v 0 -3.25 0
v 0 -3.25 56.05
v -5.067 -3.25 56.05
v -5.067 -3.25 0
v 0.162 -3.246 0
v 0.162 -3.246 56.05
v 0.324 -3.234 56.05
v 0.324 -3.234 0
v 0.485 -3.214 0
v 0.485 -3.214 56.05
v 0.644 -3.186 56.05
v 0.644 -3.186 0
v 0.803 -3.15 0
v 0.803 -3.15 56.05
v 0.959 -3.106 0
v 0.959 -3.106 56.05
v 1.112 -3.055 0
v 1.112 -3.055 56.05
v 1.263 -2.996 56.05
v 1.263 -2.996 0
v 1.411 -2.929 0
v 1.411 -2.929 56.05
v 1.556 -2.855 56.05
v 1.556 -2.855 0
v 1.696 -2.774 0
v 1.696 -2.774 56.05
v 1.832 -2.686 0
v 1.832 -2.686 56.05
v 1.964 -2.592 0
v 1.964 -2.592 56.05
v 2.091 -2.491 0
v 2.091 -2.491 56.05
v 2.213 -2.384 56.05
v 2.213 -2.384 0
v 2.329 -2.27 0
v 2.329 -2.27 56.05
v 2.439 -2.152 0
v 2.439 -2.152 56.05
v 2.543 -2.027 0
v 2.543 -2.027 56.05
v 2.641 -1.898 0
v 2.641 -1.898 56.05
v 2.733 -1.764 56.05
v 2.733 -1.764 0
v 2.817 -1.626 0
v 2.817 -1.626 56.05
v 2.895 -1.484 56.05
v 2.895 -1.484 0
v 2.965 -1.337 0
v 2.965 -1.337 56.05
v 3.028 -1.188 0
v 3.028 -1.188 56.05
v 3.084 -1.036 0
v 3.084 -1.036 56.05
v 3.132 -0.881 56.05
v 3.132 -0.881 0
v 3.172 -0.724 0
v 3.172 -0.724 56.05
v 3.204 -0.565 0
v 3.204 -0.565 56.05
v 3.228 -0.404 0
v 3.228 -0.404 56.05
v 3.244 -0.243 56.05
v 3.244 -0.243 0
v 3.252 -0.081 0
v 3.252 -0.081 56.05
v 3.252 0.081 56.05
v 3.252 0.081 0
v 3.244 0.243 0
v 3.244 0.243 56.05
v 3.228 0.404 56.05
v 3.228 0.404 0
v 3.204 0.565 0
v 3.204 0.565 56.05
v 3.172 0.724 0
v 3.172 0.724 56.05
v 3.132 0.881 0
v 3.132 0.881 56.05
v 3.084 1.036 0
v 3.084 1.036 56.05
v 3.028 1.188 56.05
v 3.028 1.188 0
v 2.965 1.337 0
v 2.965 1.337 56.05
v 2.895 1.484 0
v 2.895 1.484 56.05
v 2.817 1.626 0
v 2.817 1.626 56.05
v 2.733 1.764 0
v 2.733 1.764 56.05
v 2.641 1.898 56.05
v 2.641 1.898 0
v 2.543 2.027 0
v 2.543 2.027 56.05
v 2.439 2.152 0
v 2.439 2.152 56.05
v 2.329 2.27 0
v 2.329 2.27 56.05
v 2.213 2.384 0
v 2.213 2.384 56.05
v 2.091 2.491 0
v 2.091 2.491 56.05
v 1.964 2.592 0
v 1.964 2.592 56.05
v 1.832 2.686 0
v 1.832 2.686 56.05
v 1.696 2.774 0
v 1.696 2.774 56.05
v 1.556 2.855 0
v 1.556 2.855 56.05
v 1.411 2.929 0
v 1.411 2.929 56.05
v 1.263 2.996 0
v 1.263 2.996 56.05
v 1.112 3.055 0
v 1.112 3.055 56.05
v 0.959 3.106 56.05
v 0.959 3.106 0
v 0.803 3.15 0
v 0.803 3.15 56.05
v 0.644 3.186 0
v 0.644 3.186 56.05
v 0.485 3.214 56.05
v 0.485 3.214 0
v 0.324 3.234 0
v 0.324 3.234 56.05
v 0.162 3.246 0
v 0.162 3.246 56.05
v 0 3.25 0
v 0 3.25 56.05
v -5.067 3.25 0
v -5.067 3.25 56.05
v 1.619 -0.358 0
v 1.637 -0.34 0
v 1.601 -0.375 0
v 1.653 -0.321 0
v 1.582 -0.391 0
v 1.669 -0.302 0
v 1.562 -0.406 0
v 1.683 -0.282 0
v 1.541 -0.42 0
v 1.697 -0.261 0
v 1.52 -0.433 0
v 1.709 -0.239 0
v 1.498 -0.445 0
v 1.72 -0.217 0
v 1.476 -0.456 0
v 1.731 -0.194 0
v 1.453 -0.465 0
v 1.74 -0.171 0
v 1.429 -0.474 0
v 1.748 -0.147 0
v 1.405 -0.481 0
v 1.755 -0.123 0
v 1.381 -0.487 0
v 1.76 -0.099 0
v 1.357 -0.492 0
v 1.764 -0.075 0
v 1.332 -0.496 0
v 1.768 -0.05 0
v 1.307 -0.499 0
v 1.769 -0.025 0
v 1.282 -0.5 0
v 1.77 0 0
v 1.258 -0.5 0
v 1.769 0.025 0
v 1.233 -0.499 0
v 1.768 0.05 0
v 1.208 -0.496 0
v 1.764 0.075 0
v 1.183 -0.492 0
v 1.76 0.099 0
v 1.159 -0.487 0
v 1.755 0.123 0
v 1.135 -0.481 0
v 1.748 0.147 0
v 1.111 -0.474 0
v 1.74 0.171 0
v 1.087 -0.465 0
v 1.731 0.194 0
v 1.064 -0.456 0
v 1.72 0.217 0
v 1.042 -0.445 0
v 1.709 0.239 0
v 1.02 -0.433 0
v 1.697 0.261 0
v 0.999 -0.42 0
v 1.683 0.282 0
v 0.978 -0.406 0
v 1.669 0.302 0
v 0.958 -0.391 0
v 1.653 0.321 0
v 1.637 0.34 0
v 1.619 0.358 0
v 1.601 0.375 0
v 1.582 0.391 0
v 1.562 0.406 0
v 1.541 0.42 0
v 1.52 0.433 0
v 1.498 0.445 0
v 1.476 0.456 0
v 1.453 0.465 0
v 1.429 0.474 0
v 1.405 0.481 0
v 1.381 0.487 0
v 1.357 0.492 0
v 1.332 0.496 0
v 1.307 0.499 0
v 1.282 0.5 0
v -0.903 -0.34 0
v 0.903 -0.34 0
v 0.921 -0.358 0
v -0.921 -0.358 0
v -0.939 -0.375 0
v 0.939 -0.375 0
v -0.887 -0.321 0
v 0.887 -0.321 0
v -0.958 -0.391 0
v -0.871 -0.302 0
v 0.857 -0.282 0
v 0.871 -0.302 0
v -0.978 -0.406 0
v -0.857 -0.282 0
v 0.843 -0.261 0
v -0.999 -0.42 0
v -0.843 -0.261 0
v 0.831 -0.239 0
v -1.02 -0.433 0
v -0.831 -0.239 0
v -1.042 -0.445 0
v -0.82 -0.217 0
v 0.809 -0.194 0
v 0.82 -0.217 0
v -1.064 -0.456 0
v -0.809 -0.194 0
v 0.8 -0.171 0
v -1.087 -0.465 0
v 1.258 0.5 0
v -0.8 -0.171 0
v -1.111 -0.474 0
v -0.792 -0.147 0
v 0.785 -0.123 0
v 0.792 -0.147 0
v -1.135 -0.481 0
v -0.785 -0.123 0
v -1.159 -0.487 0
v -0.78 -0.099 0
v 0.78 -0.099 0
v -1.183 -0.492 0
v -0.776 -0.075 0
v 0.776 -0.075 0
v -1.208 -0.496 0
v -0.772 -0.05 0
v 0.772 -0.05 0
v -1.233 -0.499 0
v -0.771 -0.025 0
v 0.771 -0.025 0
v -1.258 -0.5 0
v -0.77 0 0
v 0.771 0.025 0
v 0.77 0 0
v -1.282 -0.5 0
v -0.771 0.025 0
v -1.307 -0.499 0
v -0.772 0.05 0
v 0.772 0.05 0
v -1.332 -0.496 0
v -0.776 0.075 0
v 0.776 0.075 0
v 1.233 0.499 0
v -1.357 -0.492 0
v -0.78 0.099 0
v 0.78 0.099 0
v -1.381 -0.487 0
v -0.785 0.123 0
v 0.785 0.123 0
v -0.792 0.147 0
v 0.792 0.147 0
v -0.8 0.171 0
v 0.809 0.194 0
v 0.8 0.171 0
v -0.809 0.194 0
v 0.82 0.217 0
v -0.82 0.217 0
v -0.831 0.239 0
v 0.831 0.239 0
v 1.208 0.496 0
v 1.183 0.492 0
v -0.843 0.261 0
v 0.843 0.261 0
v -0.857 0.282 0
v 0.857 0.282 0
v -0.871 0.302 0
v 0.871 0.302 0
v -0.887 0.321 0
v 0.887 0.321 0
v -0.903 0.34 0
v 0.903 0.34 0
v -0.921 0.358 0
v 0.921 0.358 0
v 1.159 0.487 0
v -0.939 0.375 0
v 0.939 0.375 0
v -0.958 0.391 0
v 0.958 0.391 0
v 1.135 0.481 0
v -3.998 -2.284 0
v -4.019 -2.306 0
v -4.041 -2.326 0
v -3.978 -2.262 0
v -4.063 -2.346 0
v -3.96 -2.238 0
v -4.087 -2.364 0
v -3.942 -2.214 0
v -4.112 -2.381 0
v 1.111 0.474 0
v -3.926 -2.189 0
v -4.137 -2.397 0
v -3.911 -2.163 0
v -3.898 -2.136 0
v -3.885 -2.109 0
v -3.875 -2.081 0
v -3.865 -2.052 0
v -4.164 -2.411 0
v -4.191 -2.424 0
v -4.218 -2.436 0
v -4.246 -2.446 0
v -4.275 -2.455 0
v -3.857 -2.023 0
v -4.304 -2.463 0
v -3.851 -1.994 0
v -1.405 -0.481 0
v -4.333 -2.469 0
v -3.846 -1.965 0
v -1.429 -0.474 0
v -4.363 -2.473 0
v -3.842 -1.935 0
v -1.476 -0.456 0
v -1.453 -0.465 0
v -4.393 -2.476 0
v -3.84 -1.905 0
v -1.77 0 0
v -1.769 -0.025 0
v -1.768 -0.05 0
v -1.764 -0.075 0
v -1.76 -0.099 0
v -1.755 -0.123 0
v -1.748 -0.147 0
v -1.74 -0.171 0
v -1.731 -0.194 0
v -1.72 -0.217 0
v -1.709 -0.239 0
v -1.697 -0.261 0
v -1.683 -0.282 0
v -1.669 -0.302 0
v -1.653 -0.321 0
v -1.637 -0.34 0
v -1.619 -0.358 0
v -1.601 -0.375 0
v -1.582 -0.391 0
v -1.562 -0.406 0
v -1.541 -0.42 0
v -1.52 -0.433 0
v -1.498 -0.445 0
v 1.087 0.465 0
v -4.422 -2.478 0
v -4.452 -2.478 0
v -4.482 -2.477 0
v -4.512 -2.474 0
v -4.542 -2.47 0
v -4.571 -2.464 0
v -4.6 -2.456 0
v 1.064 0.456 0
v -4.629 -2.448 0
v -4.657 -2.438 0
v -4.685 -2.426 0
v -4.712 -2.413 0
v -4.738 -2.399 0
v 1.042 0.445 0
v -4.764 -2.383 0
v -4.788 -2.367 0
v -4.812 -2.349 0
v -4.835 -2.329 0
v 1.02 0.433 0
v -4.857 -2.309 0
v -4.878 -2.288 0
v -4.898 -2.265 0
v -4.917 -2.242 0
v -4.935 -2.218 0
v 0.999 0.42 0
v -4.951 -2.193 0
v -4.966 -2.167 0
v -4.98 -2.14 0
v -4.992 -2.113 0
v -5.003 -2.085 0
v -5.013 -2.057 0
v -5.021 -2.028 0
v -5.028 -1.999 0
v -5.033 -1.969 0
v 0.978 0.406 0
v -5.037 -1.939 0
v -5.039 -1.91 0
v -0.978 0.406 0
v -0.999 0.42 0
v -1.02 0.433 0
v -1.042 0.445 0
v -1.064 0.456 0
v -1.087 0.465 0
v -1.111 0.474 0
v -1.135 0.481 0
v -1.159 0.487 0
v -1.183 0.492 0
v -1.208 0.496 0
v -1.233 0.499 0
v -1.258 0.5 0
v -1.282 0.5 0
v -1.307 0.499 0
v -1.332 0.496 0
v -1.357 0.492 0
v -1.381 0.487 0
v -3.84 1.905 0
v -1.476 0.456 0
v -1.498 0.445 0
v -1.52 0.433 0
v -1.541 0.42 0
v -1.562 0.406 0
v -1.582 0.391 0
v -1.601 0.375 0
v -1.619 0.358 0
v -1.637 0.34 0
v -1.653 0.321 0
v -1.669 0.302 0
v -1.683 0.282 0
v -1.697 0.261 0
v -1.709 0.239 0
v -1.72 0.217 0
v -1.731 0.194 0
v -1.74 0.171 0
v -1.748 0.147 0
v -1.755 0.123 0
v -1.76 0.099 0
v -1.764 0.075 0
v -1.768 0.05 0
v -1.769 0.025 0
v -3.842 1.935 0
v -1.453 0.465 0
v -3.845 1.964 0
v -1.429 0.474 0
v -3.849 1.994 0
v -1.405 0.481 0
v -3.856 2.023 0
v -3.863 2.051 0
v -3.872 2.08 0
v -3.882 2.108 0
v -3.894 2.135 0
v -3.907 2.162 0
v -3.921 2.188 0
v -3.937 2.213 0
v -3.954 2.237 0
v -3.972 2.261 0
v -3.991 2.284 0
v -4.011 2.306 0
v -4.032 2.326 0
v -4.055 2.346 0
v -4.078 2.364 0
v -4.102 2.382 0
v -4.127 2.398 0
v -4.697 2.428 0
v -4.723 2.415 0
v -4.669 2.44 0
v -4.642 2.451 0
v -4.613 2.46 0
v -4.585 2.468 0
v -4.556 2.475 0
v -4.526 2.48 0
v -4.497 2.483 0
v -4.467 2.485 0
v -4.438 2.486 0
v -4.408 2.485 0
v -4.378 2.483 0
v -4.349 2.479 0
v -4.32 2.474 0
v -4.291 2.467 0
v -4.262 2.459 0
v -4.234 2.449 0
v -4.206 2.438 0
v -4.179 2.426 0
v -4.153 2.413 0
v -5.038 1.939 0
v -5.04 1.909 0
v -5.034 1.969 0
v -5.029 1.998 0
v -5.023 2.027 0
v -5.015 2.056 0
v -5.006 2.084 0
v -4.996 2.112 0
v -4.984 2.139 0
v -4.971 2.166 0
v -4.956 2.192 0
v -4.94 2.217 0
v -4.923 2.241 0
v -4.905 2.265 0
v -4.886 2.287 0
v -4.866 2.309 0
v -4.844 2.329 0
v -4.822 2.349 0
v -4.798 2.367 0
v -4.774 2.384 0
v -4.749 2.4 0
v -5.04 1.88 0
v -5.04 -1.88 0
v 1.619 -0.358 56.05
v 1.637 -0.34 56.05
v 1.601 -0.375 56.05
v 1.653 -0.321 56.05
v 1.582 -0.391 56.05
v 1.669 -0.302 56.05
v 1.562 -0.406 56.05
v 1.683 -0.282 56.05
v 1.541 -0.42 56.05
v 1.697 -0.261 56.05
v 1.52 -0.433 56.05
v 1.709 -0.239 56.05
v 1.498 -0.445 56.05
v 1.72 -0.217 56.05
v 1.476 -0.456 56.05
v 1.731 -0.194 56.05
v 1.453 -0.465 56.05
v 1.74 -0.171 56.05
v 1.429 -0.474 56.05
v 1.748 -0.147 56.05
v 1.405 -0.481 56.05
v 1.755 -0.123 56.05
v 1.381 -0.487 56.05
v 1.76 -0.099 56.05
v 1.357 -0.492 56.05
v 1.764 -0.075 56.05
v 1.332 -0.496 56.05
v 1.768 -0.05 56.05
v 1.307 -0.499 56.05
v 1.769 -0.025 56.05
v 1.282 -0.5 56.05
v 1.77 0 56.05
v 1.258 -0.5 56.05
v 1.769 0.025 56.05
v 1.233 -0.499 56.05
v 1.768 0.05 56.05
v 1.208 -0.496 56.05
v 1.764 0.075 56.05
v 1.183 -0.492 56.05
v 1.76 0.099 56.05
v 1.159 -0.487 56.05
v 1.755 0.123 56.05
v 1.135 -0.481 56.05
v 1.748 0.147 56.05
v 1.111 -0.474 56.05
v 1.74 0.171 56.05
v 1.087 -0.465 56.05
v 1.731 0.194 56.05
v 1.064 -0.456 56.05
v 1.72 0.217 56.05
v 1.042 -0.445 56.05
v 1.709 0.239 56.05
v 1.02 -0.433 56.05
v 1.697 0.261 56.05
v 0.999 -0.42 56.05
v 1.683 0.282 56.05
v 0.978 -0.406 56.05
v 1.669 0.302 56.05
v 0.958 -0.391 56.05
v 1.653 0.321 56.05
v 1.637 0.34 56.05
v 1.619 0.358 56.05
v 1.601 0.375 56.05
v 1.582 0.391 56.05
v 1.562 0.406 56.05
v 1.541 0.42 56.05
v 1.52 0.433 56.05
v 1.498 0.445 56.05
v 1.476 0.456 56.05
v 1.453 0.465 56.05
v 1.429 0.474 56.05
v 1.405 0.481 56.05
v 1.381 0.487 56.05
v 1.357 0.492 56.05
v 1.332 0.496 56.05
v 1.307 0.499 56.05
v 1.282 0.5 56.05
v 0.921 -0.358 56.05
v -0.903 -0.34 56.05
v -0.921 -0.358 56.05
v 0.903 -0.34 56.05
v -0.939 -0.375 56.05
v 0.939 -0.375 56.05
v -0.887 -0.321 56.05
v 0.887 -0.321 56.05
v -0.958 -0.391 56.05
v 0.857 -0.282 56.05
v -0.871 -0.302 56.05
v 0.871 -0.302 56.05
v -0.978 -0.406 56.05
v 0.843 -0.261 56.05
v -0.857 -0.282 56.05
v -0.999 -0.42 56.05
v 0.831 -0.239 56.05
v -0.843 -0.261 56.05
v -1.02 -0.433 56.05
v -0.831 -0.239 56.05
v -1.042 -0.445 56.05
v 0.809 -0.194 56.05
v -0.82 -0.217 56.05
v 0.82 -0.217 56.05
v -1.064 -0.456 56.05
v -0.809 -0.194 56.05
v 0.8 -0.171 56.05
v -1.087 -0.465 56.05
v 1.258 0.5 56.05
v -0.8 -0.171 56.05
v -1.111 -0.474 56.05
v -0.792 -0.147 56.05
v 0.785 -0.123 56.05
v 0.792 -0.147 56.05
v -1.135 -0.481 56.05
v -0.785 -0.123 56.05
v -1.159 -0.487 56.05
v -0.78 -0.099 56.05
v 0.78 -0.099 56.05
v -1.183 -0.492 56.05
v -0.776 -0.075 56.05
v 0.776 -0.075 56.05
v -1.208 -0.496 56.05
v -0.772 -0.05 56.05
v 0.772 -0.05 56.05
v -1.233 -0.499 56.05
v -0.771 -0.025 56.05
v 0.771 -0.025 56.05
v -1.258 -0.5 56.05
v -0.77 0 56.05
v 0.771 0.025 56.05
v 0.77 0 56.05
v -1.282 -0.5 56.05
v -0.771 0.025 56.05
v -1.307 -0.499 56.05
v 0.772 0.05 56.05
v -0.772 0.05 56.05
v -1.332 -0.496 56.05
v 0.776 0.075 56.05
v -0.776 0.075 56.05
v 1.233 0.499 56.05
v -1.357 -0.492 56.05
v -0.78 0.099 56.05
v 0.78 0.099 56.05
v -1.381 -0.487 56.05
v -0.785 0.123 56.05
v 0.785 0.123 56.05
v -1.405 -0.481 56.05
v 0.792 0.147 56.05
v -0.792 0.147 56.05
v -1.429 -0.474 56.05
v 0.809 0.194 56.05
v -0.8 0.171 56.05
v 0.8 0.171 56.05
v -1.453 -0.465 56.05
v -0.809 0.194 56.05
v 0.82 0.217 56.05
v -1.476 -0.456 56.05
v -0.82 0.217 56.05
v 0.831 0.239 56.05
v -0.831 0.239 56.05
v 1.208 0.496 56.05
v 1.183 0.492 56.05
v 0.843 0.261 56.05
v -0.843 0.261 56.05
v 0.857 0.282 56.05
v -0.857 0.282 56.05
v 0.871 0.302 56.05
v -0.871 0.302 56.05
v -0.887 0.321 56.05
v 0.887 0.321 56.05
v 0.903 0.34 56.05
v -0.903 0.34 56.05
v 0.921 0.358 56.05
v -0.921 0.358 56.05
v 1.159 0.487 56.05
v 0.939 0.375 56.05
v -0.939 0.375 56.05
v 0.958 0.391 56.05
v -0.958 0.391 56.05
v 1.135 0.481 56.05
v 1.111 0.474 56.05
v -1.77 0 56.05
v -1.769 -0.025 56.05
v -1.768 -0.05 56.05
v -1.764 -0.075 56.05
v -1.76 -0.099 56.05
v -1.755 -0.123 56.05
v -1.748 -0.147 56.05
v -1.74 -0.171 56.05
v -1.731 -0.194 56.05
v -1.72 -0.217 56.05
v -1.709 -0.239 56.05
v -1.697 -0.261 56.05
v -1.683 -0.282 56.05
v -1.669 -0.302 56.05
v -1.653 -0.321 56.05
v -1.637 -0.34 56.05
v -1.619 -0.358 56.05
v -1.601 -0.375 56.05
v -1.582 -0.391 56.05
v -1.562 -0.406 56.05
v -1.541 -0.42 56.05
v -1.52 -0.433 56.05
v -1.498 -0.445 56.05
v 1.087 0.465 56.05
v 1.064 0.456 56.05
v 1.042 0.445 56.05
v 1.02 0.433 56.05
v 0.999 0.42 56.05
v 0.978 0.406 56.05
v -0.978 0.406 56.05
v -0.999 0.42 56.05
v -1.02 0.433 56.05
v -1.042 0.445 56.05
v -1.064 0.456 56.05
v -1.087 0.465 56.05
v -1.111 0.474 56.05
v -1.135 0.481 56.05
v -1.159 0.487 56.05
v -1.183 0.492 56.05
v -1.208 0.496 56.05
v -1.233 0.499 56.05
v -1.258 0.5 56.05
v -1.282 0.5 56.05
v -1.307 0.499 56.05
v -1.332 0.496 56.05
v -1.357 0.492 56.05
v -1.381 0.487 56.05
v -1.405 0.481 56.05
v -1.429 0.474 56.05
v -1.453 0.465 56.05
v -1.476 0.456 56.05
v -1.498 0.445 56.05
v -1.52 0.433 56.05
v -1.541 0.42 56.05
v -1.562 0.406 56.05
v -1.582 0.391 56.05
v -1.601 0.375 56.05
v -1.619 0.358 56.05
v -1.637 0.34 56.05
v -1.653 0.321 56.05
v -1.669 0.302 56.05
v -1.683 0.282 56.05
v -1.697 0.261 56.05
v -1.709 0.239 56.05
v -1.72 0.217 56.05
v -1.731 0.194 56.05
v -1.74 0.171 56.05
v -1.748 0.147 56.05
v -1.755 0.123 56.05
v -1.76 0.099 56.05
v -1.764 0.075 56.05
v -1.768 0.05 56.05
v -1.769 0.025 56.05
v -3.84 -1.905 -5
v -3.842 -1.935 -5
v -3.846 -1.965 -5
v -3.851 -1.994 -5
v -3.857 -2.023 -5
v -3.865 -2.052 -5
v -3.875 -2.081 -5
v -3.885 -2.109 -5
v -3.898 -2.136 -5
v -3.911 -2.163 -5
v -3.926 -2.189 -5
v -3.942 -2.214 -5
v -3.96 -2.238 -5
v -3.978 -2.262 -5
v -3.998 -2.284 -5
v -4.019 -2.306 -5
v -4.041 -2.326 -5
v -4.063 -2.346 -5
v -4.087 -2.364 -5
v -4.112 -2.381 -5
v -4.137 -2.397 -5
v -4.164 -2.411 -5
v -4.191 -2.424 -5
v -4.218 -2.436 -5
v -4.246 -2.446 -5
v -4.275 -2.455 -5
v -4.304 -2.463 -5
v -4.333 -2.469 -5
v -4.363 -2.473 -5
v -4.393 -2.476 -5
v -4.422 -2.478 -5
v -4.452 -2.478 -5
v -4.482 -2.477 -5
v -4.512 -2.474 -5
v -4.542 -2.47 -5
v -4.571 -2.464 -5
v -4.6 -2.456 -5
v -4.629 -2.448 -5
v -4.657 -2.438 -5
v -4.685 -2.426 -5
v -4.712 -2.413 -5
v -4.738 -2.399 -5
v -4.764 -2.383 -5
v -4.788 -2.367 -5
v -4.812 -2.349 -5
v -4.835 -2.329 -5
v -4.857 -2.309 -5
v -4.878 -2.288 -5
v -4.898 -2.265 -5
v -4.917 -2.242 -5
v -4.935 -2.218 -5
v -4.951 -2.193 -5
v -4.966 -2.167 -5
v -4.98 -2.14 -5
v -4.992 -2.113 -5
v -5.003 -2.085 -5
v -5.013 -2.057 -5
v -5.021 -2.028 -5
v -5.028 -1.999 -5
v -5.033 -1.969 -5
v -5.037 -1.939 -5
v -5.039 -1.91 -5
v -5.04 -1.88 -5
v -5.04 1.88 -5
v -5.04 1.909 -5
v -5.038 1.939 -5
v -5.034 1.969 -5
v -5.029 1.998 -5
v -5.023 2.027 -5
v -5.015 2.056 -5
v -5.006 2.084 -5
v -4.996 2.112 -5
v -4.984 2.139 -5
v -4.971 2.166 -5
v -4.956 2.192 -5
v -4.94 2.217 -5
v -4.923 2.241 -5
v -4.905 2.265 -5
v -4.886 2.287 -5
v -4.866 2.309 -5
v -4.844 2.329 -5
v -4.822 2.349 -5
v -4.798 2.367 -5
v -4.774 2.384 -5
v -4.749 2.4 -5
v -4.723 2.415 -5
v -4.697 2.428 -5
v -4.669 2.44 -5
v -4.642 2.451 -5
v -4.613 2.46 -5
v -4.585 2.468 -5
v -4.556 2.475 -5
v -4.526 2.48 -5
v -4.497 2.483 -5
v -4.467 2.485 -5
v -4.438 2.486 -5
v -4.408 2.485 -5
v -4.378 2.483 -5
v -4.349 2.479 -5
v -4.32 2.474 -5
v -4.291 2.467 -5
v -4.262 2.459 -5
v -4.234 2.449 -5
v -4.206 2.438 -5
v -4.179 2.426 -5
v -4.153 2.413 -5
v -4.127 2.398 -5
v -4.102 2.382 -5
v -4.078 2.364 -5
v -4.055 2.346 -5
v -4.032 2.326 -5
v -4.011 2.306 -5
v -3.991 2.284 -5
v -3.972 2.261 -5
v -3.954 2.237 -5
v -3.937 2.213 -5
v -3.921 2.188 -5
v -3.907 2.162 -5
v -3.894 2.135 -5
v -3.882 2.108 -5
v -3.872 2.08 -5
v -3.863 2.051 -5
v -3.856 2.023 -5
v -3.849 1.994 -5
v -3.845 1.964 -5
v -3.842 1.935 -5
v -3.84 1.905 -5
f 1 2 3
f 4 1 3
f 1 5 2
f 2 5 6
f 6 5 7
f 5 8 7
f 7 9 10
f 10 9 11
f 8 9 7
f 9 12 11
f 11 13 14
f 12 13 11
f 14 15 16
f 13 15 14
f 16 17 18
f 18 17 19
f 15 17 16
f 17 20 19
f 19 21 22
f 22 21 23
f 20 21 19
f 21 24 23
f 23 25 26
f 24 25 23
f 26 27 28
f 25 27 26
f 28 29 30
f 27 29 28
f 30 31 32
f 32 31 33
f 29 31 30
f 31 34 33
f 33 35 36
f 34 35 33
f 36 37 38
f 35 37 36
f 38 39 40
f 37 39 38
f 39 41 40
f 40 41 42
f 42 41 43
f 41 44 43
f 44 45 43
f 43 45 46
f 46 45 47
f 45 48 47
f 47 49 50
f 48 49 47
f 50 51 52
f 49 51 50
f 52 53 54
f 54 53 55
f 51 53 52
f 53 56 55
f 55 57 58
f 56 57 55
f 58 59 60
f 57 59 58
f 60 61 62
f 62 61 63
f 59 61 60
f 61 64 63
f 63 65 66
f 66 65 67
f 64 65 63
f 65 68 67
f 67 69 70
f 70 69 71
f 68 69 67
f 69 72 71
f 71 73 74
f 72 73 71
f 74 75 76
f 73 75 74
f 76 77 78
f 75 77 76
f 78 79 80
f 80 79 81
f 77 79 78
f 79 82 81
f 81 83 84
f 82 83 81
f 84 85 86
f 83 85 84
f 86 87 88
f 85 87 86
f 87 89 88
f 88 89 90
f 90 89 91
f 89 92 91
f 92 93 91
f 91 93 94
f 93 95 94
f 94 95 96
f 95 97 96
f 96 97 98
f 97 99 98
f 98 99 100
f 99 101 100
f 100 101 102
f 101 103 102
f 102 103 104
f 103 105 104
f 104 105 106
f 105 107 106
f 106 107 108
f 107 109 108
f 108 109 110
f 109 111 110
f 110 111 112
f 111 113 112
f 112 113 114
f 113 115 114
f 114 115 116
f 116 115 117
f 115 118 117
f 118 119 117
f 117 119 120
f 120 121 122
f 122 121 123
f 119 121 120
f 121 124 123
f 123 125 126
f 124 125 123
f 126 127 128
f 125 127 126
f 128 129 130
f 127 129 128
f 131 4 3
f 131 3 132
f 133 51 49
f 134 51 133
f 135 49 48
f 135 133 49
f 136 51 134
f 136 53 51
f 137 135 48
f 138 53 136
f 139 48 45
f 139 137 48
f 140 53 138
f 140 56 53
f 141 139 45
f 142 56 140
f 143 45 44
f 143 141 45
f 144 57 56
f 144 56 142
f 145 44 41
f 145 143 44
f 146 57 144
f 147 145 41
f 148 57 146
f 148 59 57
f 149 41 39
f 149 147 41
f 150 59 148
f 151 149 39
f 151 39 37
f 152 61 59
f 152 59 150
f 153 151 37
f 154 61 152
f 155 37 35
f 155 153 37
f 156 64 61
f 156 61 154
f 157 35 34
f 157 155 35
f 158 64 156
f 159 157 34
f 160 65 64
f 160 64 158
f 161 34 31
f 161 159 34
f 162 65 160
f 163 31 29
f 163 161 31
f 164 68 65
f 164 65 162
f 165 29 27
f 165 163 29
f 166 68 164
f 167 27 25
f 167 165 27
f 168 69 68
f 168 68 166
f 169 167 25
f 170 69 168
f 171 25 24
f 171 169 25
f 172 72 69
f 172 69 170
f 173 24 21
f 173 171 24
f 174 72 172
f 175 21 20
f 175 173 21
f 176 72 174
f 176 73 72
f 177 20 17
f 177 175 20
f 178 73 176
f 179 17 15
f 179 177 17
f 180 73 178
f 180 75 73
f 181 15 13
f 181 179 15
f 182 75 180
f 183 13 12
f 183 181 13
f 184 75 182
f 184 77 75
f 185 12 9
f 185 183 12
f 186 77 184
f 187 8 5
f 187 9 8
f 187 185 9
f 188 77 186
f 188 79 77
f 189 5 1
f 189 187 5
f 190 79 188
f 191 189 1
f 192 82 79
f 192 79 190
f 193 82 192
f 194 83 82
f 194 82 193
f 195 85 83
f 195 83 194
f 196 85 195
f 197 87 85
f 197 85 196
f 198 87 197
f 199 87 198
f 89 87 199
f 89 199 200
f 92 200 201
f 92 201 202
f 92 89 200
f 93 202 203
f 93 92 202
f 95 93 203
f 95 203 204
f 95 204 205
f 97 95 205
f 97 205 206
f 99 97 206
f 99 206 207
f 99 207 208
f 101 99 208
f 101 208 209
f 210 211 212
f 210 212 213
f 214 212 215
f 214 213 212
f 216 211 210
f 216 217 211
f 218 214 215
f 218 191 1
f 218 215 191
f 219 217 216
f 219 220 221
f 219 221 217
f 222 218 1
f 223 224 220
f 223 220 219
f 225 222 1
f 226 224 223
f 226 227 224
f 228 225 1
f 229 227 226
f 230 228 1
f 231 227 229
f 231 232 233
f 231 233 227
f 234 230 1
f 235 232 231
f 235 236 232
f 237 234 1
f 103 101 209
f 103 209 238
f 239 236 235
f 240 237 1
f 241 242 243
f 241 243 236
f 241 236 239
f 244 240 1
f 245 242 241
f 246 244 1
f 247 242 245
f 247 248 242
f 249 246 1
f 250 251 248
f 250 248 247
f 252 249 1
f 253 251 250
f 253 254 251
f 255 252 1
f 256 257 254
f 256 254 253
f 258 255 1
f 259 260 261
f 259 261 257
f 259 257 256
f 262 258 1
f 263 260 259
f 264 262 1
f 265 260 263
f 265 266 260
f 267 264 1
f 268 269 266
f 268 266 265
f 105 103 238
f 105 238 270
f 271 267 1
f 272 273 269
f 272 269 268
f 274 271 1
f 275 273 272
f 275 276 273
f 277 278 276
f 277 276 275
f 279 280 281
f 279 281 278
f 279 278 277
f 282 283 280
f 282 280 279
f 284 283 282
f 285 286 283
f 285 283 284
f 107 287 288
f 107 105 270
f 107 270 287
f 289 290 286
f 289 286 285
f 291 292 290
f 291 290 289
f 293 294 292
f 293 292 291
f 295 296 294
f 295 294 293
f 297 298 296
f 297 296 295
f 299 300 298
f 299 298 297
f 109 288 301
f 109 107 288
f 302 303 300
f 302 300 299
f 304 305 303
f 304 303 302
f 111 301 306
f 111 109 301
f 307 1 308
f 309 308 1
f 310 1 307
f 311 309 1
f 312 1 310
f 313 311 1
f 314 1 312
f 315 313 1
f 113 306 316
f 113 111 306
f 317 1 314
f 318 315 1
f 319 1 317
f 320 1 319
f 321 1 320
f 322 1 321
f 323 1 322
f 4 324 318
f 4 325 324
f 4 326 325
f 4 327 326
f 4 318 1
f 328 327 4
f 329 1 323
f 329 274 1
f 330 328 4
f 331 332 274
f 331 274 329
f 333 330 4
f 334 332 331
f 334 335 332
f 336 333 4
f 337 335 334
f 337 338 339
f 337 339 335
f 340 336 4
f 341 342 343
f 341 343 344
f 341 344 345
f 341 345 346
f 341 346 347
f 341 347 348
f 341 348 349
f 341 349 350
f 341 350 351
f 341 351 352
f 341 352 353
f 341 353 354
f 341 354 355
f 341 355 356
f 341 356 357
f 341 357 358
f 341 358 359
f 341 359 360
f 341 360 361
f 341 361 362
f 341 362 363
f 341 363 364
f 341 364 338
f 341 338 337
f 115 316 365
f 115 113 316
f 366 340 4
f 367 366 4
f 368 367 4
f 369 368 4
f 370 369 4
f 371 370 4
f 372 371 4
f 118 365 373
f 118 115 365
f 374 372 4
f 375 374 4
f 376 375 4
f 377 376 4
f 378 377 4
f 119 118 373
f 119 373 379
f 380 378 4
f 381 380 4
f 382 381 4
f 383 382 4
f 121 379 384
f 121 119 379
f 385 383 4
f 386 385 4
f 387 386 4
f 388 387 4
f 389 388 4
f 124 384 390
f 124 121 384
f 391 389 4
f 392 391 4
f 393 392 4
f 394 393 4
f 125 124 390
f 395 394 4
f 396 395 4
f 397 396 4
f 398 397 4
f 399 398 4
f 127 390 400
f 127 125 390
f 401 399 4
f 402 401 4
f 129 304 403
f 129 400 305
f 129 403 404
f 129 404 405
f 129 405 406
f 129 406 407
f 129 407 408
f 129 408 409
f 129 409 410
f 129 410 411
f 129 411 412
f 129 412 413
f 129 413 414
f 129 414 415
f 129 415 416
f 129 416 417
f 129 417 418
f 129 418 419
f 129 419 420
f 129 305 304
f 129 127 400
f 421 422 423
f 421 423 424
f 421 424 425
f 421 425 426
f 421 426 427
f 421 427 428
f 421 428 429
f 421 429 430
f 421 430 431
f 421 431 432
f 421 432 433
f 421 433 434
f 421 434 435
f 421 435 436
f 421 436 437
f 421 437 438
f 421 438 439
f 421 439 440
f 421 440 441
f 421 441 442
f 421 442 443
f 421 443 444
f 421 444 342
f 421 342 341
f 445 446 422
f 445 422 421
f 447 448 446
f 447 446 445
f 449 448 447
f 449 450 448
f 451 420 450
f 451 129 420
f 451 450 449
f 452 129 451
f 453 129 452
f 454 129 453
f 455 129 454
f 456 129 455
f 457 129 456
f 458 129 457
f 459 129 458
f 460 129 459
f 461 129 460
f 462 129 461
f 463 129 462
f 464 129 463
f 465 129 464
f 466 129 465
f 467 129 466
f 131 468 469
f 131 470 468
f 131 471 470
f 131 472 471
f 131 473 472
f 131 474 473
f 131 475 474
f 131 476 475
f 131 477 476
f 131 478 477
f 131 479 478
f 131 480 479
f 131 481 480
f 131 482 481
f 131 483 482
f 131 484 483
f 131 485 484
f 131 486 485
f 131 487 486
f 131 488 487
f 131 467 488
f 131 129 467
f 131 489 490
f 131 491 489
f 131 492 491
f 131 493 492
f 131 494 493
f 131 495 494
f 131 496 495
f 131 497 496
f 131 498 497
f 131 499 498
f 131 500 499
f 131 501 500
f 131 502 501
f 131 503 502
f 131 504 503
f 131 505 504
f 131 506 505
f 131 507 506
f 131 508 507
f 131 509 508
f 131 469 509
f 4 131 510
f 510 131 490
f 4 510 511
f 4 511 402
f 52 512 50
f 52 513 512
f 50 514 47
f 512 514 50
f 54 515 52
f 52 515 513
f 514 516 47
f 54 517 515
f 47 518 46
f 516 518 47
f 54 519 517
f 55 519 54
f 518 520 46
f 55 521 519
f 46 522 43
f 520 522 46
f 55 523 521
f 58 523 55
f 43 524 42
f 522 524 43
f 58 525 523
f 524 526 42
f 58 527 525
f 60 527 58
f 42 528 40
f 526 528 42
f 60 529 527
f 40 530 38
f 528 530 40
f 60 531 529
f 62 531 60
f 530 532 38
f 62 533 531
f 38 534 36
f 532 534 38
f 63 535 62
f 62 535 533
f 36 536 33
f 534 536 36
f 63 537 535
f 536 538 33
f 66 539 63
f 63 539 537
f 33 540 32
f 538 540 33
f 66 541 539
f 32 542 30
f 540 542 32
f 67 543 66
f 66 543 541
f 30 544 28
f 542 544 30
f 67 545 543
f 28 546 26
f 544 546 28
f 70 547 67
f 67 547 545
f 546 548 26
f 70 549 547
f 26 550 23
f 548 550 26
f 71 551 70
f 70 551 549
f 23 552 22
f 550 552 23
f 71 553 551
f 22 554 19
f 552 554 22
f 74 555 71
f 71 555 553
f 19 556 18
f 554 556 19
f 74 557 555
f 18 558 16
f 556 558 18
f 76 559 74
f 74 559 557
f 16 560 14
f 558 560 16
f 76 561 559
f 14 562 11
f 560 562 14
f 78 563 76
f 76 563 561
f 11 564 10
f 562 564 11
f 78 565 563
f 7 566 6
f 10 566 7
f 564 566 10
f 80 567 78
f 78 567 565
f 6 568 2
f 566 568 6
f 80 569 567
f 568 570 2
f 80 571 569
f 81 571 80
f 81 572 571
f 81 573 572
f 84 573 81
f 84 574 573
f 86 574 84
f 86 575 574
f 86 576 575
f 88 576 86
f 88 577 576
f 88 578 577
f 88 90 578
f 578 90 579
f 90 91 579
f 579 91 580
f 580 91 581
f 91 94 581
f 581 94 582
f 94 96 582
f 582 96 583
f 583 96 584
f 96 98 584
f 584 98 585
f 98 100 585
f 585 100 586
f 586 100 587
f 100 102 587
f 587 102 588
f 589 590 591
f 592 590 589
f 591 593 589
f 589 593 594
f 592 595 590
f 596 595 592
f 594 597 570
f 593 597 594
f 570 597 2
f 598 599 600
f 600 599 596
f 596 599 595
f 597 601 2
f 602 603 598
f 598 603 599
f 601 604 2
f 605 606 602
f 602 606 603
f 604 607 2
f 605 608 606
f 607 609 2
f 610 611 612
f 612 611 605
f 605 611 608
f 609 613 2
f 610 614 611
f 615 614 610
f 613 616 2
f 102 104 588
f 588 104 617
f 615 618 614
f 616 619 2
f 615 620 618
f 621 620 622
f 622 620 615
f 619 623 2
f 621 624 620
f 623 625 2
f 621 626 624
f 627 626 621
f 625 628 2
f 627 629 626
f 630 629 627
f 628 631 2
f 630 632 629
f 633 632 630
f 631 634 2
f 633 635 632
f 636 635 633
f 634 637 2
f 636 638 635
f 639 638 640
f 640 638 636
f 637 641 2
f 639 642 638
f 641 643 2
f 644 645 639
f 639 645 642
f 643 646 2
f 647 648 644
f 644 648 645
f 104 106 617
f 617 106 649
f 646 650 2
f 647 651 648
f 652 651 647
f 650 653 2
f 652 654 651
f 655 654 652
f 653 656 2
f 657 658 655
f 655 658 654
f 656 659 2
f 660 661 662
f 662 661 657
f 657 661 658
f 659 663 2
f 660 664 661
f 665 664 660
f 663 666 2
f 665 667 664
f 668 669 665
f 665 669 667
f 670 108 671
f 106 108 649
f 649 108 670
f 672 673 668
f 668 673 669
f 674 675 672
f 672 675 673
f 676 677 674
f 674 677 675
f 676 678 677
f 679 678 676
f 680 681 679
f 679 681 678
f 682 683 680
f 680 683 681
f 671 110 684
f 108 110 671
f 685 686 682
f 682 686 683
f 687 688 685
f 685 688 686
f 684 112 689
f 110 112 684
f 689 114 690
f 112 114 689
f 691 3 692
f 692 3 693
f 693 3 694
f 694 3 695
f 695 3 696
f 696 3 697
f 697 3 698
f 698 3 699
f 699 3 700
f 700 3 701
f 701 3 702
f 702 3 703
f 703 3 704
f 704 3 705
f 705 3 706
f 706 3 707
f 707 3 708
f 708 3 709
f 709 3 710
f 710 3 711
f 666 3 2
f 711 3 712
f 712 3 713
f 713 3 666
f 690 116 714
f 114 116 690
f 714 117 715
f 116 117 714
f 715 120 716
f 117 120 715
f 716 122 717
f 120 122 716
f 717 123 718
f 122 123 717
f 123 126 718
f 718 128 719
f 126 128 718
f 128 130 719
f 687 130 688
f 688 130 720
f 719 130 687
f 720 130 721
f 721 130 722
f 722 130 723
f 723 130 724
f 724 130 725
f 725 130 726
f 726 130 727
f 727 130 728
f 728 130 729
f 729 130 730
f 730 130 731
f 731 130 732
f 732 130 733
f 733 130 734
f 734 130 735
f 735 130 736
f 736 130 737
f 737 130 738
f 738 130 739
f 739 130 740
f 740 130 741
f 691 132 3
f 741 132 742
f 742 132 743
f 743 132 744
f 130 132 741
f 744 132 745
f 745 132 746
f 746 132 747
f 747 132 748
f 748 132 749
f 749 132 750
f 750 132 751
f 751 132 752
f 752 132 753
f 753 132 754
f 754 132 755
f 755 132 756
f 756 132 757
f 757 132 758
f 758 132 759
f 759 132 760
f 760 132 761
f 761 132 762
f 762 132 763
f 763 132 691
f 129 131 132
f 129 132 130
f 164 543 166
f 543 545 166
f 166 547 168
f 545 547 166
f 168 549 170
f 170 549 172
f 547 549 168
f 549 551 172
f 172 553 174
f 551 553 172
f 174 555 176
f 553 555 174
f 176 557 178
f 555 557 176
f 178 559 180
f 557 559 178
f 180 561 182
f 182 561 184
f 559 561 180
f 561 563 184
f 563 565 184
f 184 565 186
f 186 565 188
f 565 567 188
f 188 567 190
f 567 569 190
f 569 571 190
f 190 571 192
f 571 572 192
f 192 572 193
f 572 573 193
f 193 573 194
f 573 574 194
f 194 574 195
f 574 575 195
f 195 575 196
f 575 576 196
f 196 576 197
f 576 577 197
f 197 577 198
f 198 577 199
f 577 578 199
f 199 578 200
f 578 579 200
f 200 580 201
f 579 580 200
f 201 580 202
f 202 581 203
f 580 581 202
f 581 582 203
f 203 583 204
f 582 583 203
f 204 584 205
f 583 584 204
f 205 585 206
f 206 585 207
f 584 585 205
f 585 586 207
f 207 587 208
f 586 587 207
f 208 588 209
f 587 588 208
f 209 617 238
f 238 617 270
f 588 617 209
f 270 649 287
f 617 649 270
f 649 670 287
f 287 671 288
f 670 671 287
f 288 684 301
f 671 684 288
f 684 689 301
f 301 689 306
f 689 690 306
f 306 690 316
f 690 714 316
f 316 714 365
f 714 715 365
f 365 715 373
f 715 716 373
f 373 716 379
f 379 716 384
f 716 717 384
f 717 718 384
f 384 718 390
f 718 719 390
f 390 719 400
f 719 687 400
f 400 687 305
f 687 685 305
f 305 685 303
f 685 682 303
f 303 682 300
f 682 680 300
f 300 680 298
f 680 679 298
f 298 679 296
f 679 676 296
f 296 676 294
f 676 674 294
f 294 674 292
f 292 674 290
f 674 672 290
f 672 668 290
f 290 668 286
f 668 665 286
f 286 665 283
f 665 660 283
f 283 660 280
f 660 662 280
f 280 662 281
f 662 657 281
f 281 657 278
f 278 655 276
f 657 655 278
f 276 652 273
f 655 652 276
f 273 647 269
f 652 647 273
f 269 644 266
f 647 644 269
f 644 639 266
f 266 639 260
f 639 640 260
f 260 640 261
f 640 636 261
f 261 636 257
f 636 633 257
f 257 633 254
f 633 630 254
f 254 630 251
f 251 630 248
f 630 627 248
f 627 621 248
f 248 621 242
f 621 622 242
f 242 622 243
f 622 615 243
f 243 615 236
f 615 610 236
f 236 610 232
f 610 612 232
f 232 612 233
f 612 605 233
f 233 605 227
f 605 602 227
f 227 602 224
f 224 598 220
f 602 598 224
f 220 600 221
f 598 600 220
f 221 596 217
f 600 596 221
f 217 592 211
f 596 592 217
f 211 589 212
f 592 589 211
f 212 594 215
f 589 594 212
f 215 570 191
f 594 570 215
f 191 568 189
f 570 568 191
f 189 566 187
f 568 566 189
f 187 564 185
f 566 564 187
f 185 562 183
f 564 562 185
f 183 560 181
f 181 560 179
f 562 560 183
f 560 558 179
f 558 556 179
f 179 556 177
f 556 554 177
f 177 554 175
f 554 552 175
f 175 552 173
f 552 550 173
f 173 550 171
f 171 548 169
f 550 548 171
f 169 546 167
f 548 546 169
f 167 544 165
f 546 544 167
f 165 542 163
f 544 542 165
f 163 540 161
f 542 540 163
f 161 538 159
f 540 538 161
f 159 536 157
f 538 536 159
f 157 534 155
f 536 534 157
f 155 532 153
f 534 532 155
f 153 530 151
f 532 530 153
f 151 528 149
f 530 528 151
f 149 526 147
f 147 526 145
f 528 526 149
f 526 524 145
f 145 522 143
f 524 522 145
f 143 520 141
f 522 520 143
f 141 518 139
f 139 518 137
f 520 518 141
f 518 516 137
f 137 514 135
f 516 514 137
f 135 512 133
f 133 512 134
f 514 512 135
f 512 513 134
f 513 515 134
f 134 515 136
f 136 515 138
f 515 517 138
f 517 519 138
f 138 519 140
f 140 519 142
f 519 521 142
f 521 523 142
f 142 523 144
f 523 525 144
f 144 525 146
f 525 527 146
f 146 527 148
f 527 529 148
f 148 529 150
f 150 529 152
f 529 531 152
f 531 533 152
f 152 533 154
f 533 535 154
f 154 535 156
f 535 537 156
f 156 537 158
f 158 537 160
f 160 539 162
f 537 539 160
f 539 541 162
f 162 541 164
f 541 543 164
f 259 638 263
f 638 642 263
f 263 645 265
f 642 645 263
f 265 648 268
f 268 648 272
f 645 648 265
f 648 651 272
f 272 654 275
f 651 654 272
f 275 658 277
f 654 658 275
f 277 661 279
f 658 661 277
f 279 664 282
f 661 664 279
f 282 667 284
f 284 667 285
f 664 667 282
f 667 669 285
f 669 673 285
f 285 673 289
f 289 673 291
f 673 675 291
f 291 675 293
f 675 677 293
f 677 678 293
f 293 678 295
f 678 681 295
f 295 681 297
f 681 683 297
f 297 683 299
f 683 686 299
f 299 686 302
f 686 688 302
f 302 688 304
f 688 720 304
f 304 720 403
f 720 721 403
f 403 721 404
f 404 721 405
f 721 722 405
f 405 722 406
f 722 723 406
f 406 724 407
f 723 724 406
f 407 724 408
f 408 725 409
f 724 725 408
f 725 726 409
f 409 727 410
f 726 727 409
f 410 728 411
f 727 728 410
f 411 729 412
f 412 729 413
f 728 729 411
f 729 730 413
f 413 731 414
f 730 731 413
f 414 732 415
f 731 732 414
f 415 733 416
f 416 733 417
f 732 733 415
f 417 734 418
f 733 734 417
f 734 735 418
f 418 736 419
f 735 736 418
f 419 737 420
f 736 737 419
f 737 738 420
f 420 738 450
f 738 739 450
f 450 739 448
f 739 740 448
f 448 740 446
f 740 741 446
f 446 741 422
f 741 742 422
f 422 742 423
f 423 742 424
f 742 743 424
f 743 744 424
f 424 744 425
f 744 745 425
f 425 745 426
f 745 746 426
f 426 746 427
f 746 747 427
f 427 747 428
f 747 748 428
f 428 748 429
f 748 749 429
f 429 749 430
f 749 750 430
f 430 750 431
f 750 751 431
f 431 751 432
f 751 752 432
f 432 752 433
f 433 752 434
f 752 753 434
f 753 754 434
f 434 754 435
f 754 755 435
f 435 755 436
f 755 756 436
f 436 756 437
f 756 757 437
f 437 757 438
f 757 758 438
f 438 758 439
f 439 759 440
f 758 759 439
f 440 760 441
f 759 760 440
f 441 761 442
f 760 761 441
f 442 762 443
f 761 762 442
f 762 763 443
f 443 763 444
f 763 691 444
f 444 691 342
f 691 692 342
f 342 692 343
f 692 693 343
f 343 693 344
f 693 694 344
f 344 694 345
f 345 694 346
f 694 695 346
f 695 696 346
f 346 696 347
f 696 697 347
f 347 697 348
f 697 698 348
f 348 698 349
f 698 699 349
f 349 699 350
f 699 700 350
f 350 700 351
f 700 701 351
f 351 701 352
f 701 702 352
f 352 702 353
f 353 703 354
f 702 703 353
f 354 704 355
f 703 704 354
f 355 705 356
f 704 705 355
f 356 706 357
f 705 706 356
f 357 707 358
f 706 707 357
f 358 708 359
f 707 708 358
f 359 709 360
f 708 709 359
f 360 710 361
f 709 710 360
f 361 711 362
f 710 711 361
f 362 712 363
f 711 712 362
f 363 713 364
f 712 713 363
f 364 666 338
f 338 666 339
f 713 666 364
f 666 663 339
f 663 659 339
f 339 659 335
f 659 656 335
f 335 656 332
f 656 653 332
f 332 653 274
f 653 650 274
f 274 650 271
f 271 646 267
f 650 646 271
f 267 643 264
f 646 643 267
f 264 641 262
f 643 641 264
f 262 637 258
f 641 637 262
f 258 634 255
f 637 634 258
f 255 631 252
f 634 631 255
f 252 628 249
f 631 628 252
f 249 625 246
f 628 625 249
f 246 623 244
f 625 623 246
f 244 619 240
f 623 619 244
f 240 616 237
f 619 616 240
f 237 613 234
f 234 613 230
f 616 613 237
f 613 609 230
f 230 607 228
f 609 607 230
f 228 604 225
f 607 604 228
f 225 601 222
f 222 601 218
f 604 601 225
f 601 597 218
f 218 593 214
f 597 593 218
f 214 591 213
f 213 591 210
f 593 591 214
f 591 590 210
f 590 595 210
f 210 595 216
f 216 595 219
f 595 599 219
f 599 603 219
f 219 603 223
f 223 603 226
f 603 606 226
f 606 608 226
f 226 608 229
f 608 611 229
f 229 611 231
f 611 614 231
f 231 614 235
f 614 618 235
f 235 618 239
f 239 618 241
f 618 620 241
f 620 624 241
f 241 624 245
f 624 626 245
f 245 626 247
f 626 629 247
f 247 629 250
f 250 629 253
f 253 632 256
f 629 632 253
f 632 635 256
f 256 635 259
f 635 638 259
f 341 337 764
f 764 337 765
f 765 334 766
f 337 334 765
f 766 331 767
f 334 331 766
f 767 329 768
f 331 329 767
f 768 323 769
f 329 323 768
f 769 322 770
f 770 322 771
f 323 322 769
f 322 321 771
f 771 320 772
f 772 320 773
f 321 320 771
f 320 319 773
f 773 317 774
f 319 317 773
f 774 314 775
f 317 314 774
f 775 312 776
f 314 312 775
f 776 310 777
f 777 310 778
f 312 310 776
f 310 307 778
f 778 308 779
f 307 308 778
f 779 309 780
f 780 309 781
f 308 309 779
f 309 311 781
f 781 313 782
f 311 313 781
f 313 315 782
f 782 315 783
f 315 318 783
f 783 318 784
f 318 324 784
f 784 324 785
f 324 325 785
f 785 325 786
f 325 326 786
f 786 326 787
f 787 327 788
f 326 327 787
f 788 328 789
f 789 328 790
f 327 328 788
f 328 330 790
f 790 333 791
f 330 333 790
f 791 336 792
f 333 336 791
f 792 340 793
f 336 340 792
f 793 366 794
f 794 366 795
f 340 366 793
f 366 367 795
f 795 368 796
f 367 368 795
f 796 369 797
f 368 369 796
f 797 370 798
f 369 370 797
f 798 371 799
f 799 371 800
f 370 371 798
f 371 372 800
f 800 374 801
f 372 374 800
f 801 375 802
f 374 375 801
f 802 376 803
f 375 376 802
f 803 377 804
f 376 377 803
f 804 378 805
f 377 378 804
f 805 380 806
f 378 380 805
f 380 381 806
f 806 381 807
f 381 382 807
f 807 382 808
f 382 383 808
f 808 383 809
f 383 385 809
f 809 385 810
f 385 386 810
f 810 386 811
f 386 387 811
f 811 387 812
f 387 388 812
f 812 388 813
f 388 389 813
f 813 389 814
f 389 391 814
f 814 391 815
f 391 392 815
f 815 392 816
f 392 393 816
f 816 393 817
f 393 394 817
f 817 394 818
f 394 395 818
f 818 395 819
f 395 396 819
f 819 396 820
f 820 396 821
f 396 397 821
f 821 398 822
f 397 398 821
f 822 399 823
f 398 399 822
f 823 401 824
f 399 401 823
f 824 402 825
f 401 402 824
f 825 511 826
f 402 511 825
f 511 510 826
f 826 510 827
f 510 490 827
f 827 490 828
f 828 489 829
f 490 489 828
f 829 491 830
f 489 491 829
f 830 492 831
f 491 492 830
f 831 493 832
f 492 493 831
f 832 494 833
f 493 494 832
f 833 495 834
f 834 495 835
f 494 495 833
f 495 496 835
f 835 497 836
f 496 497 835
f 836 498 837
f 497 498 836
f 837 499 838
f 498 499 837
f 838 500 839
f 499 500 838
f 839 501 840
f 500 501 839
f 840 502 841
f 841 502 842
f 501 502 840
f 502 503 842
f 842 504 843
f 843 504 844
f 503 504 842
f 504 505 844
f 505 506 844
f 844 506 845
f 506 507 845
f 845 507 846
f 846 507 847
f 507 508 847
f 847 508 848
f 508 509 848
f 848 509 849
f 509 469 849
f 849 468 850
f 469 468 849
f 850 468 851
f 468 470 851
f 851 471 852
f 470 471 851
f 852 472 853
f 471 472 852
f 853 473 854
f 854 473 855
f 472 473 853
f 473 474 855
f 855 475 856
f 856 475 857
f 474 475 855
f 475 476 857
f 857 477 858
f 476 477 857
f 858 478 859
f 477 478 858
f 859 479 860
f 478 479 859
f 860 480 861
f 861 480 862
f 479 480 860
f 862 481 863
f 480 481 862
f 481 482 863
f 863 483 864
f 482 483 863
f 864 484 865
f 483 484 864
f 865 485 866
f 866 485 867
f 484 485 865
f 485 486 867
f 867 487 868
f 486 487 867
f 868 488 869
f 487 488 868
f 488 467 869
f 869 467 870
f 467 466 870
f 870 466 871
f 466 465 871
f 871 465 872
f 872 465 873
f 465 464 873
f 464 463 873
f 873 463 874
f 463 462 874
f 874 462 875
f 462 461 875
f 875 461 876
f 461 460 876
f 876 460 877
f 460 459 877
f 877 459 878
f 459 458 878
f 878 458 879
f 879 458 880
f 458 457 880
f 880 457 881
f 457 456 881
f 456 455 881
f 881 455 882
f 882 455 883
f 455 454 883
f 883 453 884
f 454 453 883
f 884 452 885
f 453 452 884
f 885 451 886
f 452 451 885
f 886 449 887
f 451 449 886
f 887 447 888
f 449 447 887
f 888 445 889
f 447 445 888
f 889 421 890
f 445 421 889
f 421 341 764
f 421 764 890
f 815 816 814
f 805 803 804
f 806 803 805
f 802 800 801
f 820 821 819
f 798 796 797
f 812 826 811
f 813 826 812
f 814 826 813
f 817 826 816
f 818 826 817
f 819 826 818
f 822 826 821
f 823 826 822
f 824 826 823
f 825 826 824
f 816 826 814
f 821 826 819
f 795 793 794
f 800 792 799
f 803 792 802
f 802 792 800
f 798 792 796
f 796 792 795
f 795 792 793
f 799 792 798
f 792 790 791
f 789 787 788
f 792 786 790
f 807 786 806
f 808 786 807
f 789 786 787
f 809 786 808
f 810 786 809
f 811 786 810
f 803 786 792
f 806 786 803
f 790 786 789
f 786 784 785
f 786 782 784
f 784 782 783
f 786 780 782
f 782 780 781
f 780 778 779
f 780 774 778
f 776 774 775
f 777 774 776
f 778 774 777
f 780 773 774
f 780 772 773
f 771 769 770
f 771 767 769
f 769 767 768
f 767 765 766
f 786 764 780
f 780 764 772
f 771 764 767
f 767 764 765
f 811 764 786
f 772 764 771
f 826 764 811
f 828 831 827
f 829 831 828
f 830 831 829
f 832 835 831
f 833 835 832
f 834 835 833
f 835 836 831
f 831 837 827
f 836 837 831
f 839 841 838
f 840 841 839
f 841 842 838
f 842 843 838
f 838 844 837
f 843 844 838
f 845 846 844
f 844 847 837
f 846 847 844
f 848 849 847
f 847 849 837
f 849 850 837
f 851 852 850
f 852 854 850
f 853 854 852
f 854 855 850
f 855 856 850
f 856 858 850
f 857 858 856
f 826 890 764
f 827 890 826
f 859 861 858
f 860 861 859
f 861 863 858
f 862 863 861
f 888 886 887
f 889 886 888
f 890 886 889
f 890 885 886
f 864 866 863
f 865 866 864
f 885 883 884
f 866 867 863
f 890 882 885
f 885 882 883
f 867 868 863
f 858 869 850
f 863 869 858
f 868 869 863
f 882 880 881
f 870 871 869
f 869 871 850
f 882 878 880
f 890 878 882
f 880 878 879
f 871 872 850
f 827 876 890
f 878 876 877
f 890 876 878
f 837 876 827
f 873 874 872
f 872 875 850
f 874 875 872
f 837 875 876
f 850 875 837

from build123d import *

# Parameters (mm, degrees)
PAD_DEPTH    = 56.05
SKETCH001_R  = 0.5
POCKET_DEPTH = 70
PAD001_DEPTH = 5


with BuildPart() as part:
    # Sketch → Pad (new body)
    with BuildSketch(Plane.XY):
        with BuildLine():
            Line((-5.067001, 3.25), (-1e-06, 3.25))
            ThreePointArc((-2e-06, -3.25), (3.253286, 0), (-1e-06, 3.25))
            Line((-2e-06, -3.25), (-5.067001, -3.25))
            Line((-5.067001, -3.25), (-5.067001, 3.25))
        make_face()
    extrude(amount=PAD_DEPTH)

    # Sketch001 (on Face6 of Pad) → Pocket (cut)
    with BuildSketch(Plane.XY.offset(56.05)):
        with Locations((-1.27, 0)):
            Circle(SKETCH001_R)
        with Locations((1.27, 0)):
            Circle(SKETCH001_R)
    extrude(amount=-POCKET_DEPTH, mode=Mode.SUBTRACT)

    # Sketch002 (on Face4 of Pocket) → Pad001 (join)
    with BuildSketch(Plane(origin=(0, 0, 0), x_dir=(1, 0, 0), z_dir=(0, 0, -1))):
        with BuildLine():
            Line((-3.84, 1.905), (-3.84, -1.905))
            ThreePointArc((-5.04, -1.879774), (-4.452472, -2.485689), (-3.84, -1.905))
            Line((-5.04, 1.879643), (-5.04, -1.879774))
            ThreePointArc((-3.84, 1.905), (-4.452379, 2.478133), (-5.04, 1.879643))
        make_face()
    extrude(amount=PAD001_DEPTH)


solid = part.part
